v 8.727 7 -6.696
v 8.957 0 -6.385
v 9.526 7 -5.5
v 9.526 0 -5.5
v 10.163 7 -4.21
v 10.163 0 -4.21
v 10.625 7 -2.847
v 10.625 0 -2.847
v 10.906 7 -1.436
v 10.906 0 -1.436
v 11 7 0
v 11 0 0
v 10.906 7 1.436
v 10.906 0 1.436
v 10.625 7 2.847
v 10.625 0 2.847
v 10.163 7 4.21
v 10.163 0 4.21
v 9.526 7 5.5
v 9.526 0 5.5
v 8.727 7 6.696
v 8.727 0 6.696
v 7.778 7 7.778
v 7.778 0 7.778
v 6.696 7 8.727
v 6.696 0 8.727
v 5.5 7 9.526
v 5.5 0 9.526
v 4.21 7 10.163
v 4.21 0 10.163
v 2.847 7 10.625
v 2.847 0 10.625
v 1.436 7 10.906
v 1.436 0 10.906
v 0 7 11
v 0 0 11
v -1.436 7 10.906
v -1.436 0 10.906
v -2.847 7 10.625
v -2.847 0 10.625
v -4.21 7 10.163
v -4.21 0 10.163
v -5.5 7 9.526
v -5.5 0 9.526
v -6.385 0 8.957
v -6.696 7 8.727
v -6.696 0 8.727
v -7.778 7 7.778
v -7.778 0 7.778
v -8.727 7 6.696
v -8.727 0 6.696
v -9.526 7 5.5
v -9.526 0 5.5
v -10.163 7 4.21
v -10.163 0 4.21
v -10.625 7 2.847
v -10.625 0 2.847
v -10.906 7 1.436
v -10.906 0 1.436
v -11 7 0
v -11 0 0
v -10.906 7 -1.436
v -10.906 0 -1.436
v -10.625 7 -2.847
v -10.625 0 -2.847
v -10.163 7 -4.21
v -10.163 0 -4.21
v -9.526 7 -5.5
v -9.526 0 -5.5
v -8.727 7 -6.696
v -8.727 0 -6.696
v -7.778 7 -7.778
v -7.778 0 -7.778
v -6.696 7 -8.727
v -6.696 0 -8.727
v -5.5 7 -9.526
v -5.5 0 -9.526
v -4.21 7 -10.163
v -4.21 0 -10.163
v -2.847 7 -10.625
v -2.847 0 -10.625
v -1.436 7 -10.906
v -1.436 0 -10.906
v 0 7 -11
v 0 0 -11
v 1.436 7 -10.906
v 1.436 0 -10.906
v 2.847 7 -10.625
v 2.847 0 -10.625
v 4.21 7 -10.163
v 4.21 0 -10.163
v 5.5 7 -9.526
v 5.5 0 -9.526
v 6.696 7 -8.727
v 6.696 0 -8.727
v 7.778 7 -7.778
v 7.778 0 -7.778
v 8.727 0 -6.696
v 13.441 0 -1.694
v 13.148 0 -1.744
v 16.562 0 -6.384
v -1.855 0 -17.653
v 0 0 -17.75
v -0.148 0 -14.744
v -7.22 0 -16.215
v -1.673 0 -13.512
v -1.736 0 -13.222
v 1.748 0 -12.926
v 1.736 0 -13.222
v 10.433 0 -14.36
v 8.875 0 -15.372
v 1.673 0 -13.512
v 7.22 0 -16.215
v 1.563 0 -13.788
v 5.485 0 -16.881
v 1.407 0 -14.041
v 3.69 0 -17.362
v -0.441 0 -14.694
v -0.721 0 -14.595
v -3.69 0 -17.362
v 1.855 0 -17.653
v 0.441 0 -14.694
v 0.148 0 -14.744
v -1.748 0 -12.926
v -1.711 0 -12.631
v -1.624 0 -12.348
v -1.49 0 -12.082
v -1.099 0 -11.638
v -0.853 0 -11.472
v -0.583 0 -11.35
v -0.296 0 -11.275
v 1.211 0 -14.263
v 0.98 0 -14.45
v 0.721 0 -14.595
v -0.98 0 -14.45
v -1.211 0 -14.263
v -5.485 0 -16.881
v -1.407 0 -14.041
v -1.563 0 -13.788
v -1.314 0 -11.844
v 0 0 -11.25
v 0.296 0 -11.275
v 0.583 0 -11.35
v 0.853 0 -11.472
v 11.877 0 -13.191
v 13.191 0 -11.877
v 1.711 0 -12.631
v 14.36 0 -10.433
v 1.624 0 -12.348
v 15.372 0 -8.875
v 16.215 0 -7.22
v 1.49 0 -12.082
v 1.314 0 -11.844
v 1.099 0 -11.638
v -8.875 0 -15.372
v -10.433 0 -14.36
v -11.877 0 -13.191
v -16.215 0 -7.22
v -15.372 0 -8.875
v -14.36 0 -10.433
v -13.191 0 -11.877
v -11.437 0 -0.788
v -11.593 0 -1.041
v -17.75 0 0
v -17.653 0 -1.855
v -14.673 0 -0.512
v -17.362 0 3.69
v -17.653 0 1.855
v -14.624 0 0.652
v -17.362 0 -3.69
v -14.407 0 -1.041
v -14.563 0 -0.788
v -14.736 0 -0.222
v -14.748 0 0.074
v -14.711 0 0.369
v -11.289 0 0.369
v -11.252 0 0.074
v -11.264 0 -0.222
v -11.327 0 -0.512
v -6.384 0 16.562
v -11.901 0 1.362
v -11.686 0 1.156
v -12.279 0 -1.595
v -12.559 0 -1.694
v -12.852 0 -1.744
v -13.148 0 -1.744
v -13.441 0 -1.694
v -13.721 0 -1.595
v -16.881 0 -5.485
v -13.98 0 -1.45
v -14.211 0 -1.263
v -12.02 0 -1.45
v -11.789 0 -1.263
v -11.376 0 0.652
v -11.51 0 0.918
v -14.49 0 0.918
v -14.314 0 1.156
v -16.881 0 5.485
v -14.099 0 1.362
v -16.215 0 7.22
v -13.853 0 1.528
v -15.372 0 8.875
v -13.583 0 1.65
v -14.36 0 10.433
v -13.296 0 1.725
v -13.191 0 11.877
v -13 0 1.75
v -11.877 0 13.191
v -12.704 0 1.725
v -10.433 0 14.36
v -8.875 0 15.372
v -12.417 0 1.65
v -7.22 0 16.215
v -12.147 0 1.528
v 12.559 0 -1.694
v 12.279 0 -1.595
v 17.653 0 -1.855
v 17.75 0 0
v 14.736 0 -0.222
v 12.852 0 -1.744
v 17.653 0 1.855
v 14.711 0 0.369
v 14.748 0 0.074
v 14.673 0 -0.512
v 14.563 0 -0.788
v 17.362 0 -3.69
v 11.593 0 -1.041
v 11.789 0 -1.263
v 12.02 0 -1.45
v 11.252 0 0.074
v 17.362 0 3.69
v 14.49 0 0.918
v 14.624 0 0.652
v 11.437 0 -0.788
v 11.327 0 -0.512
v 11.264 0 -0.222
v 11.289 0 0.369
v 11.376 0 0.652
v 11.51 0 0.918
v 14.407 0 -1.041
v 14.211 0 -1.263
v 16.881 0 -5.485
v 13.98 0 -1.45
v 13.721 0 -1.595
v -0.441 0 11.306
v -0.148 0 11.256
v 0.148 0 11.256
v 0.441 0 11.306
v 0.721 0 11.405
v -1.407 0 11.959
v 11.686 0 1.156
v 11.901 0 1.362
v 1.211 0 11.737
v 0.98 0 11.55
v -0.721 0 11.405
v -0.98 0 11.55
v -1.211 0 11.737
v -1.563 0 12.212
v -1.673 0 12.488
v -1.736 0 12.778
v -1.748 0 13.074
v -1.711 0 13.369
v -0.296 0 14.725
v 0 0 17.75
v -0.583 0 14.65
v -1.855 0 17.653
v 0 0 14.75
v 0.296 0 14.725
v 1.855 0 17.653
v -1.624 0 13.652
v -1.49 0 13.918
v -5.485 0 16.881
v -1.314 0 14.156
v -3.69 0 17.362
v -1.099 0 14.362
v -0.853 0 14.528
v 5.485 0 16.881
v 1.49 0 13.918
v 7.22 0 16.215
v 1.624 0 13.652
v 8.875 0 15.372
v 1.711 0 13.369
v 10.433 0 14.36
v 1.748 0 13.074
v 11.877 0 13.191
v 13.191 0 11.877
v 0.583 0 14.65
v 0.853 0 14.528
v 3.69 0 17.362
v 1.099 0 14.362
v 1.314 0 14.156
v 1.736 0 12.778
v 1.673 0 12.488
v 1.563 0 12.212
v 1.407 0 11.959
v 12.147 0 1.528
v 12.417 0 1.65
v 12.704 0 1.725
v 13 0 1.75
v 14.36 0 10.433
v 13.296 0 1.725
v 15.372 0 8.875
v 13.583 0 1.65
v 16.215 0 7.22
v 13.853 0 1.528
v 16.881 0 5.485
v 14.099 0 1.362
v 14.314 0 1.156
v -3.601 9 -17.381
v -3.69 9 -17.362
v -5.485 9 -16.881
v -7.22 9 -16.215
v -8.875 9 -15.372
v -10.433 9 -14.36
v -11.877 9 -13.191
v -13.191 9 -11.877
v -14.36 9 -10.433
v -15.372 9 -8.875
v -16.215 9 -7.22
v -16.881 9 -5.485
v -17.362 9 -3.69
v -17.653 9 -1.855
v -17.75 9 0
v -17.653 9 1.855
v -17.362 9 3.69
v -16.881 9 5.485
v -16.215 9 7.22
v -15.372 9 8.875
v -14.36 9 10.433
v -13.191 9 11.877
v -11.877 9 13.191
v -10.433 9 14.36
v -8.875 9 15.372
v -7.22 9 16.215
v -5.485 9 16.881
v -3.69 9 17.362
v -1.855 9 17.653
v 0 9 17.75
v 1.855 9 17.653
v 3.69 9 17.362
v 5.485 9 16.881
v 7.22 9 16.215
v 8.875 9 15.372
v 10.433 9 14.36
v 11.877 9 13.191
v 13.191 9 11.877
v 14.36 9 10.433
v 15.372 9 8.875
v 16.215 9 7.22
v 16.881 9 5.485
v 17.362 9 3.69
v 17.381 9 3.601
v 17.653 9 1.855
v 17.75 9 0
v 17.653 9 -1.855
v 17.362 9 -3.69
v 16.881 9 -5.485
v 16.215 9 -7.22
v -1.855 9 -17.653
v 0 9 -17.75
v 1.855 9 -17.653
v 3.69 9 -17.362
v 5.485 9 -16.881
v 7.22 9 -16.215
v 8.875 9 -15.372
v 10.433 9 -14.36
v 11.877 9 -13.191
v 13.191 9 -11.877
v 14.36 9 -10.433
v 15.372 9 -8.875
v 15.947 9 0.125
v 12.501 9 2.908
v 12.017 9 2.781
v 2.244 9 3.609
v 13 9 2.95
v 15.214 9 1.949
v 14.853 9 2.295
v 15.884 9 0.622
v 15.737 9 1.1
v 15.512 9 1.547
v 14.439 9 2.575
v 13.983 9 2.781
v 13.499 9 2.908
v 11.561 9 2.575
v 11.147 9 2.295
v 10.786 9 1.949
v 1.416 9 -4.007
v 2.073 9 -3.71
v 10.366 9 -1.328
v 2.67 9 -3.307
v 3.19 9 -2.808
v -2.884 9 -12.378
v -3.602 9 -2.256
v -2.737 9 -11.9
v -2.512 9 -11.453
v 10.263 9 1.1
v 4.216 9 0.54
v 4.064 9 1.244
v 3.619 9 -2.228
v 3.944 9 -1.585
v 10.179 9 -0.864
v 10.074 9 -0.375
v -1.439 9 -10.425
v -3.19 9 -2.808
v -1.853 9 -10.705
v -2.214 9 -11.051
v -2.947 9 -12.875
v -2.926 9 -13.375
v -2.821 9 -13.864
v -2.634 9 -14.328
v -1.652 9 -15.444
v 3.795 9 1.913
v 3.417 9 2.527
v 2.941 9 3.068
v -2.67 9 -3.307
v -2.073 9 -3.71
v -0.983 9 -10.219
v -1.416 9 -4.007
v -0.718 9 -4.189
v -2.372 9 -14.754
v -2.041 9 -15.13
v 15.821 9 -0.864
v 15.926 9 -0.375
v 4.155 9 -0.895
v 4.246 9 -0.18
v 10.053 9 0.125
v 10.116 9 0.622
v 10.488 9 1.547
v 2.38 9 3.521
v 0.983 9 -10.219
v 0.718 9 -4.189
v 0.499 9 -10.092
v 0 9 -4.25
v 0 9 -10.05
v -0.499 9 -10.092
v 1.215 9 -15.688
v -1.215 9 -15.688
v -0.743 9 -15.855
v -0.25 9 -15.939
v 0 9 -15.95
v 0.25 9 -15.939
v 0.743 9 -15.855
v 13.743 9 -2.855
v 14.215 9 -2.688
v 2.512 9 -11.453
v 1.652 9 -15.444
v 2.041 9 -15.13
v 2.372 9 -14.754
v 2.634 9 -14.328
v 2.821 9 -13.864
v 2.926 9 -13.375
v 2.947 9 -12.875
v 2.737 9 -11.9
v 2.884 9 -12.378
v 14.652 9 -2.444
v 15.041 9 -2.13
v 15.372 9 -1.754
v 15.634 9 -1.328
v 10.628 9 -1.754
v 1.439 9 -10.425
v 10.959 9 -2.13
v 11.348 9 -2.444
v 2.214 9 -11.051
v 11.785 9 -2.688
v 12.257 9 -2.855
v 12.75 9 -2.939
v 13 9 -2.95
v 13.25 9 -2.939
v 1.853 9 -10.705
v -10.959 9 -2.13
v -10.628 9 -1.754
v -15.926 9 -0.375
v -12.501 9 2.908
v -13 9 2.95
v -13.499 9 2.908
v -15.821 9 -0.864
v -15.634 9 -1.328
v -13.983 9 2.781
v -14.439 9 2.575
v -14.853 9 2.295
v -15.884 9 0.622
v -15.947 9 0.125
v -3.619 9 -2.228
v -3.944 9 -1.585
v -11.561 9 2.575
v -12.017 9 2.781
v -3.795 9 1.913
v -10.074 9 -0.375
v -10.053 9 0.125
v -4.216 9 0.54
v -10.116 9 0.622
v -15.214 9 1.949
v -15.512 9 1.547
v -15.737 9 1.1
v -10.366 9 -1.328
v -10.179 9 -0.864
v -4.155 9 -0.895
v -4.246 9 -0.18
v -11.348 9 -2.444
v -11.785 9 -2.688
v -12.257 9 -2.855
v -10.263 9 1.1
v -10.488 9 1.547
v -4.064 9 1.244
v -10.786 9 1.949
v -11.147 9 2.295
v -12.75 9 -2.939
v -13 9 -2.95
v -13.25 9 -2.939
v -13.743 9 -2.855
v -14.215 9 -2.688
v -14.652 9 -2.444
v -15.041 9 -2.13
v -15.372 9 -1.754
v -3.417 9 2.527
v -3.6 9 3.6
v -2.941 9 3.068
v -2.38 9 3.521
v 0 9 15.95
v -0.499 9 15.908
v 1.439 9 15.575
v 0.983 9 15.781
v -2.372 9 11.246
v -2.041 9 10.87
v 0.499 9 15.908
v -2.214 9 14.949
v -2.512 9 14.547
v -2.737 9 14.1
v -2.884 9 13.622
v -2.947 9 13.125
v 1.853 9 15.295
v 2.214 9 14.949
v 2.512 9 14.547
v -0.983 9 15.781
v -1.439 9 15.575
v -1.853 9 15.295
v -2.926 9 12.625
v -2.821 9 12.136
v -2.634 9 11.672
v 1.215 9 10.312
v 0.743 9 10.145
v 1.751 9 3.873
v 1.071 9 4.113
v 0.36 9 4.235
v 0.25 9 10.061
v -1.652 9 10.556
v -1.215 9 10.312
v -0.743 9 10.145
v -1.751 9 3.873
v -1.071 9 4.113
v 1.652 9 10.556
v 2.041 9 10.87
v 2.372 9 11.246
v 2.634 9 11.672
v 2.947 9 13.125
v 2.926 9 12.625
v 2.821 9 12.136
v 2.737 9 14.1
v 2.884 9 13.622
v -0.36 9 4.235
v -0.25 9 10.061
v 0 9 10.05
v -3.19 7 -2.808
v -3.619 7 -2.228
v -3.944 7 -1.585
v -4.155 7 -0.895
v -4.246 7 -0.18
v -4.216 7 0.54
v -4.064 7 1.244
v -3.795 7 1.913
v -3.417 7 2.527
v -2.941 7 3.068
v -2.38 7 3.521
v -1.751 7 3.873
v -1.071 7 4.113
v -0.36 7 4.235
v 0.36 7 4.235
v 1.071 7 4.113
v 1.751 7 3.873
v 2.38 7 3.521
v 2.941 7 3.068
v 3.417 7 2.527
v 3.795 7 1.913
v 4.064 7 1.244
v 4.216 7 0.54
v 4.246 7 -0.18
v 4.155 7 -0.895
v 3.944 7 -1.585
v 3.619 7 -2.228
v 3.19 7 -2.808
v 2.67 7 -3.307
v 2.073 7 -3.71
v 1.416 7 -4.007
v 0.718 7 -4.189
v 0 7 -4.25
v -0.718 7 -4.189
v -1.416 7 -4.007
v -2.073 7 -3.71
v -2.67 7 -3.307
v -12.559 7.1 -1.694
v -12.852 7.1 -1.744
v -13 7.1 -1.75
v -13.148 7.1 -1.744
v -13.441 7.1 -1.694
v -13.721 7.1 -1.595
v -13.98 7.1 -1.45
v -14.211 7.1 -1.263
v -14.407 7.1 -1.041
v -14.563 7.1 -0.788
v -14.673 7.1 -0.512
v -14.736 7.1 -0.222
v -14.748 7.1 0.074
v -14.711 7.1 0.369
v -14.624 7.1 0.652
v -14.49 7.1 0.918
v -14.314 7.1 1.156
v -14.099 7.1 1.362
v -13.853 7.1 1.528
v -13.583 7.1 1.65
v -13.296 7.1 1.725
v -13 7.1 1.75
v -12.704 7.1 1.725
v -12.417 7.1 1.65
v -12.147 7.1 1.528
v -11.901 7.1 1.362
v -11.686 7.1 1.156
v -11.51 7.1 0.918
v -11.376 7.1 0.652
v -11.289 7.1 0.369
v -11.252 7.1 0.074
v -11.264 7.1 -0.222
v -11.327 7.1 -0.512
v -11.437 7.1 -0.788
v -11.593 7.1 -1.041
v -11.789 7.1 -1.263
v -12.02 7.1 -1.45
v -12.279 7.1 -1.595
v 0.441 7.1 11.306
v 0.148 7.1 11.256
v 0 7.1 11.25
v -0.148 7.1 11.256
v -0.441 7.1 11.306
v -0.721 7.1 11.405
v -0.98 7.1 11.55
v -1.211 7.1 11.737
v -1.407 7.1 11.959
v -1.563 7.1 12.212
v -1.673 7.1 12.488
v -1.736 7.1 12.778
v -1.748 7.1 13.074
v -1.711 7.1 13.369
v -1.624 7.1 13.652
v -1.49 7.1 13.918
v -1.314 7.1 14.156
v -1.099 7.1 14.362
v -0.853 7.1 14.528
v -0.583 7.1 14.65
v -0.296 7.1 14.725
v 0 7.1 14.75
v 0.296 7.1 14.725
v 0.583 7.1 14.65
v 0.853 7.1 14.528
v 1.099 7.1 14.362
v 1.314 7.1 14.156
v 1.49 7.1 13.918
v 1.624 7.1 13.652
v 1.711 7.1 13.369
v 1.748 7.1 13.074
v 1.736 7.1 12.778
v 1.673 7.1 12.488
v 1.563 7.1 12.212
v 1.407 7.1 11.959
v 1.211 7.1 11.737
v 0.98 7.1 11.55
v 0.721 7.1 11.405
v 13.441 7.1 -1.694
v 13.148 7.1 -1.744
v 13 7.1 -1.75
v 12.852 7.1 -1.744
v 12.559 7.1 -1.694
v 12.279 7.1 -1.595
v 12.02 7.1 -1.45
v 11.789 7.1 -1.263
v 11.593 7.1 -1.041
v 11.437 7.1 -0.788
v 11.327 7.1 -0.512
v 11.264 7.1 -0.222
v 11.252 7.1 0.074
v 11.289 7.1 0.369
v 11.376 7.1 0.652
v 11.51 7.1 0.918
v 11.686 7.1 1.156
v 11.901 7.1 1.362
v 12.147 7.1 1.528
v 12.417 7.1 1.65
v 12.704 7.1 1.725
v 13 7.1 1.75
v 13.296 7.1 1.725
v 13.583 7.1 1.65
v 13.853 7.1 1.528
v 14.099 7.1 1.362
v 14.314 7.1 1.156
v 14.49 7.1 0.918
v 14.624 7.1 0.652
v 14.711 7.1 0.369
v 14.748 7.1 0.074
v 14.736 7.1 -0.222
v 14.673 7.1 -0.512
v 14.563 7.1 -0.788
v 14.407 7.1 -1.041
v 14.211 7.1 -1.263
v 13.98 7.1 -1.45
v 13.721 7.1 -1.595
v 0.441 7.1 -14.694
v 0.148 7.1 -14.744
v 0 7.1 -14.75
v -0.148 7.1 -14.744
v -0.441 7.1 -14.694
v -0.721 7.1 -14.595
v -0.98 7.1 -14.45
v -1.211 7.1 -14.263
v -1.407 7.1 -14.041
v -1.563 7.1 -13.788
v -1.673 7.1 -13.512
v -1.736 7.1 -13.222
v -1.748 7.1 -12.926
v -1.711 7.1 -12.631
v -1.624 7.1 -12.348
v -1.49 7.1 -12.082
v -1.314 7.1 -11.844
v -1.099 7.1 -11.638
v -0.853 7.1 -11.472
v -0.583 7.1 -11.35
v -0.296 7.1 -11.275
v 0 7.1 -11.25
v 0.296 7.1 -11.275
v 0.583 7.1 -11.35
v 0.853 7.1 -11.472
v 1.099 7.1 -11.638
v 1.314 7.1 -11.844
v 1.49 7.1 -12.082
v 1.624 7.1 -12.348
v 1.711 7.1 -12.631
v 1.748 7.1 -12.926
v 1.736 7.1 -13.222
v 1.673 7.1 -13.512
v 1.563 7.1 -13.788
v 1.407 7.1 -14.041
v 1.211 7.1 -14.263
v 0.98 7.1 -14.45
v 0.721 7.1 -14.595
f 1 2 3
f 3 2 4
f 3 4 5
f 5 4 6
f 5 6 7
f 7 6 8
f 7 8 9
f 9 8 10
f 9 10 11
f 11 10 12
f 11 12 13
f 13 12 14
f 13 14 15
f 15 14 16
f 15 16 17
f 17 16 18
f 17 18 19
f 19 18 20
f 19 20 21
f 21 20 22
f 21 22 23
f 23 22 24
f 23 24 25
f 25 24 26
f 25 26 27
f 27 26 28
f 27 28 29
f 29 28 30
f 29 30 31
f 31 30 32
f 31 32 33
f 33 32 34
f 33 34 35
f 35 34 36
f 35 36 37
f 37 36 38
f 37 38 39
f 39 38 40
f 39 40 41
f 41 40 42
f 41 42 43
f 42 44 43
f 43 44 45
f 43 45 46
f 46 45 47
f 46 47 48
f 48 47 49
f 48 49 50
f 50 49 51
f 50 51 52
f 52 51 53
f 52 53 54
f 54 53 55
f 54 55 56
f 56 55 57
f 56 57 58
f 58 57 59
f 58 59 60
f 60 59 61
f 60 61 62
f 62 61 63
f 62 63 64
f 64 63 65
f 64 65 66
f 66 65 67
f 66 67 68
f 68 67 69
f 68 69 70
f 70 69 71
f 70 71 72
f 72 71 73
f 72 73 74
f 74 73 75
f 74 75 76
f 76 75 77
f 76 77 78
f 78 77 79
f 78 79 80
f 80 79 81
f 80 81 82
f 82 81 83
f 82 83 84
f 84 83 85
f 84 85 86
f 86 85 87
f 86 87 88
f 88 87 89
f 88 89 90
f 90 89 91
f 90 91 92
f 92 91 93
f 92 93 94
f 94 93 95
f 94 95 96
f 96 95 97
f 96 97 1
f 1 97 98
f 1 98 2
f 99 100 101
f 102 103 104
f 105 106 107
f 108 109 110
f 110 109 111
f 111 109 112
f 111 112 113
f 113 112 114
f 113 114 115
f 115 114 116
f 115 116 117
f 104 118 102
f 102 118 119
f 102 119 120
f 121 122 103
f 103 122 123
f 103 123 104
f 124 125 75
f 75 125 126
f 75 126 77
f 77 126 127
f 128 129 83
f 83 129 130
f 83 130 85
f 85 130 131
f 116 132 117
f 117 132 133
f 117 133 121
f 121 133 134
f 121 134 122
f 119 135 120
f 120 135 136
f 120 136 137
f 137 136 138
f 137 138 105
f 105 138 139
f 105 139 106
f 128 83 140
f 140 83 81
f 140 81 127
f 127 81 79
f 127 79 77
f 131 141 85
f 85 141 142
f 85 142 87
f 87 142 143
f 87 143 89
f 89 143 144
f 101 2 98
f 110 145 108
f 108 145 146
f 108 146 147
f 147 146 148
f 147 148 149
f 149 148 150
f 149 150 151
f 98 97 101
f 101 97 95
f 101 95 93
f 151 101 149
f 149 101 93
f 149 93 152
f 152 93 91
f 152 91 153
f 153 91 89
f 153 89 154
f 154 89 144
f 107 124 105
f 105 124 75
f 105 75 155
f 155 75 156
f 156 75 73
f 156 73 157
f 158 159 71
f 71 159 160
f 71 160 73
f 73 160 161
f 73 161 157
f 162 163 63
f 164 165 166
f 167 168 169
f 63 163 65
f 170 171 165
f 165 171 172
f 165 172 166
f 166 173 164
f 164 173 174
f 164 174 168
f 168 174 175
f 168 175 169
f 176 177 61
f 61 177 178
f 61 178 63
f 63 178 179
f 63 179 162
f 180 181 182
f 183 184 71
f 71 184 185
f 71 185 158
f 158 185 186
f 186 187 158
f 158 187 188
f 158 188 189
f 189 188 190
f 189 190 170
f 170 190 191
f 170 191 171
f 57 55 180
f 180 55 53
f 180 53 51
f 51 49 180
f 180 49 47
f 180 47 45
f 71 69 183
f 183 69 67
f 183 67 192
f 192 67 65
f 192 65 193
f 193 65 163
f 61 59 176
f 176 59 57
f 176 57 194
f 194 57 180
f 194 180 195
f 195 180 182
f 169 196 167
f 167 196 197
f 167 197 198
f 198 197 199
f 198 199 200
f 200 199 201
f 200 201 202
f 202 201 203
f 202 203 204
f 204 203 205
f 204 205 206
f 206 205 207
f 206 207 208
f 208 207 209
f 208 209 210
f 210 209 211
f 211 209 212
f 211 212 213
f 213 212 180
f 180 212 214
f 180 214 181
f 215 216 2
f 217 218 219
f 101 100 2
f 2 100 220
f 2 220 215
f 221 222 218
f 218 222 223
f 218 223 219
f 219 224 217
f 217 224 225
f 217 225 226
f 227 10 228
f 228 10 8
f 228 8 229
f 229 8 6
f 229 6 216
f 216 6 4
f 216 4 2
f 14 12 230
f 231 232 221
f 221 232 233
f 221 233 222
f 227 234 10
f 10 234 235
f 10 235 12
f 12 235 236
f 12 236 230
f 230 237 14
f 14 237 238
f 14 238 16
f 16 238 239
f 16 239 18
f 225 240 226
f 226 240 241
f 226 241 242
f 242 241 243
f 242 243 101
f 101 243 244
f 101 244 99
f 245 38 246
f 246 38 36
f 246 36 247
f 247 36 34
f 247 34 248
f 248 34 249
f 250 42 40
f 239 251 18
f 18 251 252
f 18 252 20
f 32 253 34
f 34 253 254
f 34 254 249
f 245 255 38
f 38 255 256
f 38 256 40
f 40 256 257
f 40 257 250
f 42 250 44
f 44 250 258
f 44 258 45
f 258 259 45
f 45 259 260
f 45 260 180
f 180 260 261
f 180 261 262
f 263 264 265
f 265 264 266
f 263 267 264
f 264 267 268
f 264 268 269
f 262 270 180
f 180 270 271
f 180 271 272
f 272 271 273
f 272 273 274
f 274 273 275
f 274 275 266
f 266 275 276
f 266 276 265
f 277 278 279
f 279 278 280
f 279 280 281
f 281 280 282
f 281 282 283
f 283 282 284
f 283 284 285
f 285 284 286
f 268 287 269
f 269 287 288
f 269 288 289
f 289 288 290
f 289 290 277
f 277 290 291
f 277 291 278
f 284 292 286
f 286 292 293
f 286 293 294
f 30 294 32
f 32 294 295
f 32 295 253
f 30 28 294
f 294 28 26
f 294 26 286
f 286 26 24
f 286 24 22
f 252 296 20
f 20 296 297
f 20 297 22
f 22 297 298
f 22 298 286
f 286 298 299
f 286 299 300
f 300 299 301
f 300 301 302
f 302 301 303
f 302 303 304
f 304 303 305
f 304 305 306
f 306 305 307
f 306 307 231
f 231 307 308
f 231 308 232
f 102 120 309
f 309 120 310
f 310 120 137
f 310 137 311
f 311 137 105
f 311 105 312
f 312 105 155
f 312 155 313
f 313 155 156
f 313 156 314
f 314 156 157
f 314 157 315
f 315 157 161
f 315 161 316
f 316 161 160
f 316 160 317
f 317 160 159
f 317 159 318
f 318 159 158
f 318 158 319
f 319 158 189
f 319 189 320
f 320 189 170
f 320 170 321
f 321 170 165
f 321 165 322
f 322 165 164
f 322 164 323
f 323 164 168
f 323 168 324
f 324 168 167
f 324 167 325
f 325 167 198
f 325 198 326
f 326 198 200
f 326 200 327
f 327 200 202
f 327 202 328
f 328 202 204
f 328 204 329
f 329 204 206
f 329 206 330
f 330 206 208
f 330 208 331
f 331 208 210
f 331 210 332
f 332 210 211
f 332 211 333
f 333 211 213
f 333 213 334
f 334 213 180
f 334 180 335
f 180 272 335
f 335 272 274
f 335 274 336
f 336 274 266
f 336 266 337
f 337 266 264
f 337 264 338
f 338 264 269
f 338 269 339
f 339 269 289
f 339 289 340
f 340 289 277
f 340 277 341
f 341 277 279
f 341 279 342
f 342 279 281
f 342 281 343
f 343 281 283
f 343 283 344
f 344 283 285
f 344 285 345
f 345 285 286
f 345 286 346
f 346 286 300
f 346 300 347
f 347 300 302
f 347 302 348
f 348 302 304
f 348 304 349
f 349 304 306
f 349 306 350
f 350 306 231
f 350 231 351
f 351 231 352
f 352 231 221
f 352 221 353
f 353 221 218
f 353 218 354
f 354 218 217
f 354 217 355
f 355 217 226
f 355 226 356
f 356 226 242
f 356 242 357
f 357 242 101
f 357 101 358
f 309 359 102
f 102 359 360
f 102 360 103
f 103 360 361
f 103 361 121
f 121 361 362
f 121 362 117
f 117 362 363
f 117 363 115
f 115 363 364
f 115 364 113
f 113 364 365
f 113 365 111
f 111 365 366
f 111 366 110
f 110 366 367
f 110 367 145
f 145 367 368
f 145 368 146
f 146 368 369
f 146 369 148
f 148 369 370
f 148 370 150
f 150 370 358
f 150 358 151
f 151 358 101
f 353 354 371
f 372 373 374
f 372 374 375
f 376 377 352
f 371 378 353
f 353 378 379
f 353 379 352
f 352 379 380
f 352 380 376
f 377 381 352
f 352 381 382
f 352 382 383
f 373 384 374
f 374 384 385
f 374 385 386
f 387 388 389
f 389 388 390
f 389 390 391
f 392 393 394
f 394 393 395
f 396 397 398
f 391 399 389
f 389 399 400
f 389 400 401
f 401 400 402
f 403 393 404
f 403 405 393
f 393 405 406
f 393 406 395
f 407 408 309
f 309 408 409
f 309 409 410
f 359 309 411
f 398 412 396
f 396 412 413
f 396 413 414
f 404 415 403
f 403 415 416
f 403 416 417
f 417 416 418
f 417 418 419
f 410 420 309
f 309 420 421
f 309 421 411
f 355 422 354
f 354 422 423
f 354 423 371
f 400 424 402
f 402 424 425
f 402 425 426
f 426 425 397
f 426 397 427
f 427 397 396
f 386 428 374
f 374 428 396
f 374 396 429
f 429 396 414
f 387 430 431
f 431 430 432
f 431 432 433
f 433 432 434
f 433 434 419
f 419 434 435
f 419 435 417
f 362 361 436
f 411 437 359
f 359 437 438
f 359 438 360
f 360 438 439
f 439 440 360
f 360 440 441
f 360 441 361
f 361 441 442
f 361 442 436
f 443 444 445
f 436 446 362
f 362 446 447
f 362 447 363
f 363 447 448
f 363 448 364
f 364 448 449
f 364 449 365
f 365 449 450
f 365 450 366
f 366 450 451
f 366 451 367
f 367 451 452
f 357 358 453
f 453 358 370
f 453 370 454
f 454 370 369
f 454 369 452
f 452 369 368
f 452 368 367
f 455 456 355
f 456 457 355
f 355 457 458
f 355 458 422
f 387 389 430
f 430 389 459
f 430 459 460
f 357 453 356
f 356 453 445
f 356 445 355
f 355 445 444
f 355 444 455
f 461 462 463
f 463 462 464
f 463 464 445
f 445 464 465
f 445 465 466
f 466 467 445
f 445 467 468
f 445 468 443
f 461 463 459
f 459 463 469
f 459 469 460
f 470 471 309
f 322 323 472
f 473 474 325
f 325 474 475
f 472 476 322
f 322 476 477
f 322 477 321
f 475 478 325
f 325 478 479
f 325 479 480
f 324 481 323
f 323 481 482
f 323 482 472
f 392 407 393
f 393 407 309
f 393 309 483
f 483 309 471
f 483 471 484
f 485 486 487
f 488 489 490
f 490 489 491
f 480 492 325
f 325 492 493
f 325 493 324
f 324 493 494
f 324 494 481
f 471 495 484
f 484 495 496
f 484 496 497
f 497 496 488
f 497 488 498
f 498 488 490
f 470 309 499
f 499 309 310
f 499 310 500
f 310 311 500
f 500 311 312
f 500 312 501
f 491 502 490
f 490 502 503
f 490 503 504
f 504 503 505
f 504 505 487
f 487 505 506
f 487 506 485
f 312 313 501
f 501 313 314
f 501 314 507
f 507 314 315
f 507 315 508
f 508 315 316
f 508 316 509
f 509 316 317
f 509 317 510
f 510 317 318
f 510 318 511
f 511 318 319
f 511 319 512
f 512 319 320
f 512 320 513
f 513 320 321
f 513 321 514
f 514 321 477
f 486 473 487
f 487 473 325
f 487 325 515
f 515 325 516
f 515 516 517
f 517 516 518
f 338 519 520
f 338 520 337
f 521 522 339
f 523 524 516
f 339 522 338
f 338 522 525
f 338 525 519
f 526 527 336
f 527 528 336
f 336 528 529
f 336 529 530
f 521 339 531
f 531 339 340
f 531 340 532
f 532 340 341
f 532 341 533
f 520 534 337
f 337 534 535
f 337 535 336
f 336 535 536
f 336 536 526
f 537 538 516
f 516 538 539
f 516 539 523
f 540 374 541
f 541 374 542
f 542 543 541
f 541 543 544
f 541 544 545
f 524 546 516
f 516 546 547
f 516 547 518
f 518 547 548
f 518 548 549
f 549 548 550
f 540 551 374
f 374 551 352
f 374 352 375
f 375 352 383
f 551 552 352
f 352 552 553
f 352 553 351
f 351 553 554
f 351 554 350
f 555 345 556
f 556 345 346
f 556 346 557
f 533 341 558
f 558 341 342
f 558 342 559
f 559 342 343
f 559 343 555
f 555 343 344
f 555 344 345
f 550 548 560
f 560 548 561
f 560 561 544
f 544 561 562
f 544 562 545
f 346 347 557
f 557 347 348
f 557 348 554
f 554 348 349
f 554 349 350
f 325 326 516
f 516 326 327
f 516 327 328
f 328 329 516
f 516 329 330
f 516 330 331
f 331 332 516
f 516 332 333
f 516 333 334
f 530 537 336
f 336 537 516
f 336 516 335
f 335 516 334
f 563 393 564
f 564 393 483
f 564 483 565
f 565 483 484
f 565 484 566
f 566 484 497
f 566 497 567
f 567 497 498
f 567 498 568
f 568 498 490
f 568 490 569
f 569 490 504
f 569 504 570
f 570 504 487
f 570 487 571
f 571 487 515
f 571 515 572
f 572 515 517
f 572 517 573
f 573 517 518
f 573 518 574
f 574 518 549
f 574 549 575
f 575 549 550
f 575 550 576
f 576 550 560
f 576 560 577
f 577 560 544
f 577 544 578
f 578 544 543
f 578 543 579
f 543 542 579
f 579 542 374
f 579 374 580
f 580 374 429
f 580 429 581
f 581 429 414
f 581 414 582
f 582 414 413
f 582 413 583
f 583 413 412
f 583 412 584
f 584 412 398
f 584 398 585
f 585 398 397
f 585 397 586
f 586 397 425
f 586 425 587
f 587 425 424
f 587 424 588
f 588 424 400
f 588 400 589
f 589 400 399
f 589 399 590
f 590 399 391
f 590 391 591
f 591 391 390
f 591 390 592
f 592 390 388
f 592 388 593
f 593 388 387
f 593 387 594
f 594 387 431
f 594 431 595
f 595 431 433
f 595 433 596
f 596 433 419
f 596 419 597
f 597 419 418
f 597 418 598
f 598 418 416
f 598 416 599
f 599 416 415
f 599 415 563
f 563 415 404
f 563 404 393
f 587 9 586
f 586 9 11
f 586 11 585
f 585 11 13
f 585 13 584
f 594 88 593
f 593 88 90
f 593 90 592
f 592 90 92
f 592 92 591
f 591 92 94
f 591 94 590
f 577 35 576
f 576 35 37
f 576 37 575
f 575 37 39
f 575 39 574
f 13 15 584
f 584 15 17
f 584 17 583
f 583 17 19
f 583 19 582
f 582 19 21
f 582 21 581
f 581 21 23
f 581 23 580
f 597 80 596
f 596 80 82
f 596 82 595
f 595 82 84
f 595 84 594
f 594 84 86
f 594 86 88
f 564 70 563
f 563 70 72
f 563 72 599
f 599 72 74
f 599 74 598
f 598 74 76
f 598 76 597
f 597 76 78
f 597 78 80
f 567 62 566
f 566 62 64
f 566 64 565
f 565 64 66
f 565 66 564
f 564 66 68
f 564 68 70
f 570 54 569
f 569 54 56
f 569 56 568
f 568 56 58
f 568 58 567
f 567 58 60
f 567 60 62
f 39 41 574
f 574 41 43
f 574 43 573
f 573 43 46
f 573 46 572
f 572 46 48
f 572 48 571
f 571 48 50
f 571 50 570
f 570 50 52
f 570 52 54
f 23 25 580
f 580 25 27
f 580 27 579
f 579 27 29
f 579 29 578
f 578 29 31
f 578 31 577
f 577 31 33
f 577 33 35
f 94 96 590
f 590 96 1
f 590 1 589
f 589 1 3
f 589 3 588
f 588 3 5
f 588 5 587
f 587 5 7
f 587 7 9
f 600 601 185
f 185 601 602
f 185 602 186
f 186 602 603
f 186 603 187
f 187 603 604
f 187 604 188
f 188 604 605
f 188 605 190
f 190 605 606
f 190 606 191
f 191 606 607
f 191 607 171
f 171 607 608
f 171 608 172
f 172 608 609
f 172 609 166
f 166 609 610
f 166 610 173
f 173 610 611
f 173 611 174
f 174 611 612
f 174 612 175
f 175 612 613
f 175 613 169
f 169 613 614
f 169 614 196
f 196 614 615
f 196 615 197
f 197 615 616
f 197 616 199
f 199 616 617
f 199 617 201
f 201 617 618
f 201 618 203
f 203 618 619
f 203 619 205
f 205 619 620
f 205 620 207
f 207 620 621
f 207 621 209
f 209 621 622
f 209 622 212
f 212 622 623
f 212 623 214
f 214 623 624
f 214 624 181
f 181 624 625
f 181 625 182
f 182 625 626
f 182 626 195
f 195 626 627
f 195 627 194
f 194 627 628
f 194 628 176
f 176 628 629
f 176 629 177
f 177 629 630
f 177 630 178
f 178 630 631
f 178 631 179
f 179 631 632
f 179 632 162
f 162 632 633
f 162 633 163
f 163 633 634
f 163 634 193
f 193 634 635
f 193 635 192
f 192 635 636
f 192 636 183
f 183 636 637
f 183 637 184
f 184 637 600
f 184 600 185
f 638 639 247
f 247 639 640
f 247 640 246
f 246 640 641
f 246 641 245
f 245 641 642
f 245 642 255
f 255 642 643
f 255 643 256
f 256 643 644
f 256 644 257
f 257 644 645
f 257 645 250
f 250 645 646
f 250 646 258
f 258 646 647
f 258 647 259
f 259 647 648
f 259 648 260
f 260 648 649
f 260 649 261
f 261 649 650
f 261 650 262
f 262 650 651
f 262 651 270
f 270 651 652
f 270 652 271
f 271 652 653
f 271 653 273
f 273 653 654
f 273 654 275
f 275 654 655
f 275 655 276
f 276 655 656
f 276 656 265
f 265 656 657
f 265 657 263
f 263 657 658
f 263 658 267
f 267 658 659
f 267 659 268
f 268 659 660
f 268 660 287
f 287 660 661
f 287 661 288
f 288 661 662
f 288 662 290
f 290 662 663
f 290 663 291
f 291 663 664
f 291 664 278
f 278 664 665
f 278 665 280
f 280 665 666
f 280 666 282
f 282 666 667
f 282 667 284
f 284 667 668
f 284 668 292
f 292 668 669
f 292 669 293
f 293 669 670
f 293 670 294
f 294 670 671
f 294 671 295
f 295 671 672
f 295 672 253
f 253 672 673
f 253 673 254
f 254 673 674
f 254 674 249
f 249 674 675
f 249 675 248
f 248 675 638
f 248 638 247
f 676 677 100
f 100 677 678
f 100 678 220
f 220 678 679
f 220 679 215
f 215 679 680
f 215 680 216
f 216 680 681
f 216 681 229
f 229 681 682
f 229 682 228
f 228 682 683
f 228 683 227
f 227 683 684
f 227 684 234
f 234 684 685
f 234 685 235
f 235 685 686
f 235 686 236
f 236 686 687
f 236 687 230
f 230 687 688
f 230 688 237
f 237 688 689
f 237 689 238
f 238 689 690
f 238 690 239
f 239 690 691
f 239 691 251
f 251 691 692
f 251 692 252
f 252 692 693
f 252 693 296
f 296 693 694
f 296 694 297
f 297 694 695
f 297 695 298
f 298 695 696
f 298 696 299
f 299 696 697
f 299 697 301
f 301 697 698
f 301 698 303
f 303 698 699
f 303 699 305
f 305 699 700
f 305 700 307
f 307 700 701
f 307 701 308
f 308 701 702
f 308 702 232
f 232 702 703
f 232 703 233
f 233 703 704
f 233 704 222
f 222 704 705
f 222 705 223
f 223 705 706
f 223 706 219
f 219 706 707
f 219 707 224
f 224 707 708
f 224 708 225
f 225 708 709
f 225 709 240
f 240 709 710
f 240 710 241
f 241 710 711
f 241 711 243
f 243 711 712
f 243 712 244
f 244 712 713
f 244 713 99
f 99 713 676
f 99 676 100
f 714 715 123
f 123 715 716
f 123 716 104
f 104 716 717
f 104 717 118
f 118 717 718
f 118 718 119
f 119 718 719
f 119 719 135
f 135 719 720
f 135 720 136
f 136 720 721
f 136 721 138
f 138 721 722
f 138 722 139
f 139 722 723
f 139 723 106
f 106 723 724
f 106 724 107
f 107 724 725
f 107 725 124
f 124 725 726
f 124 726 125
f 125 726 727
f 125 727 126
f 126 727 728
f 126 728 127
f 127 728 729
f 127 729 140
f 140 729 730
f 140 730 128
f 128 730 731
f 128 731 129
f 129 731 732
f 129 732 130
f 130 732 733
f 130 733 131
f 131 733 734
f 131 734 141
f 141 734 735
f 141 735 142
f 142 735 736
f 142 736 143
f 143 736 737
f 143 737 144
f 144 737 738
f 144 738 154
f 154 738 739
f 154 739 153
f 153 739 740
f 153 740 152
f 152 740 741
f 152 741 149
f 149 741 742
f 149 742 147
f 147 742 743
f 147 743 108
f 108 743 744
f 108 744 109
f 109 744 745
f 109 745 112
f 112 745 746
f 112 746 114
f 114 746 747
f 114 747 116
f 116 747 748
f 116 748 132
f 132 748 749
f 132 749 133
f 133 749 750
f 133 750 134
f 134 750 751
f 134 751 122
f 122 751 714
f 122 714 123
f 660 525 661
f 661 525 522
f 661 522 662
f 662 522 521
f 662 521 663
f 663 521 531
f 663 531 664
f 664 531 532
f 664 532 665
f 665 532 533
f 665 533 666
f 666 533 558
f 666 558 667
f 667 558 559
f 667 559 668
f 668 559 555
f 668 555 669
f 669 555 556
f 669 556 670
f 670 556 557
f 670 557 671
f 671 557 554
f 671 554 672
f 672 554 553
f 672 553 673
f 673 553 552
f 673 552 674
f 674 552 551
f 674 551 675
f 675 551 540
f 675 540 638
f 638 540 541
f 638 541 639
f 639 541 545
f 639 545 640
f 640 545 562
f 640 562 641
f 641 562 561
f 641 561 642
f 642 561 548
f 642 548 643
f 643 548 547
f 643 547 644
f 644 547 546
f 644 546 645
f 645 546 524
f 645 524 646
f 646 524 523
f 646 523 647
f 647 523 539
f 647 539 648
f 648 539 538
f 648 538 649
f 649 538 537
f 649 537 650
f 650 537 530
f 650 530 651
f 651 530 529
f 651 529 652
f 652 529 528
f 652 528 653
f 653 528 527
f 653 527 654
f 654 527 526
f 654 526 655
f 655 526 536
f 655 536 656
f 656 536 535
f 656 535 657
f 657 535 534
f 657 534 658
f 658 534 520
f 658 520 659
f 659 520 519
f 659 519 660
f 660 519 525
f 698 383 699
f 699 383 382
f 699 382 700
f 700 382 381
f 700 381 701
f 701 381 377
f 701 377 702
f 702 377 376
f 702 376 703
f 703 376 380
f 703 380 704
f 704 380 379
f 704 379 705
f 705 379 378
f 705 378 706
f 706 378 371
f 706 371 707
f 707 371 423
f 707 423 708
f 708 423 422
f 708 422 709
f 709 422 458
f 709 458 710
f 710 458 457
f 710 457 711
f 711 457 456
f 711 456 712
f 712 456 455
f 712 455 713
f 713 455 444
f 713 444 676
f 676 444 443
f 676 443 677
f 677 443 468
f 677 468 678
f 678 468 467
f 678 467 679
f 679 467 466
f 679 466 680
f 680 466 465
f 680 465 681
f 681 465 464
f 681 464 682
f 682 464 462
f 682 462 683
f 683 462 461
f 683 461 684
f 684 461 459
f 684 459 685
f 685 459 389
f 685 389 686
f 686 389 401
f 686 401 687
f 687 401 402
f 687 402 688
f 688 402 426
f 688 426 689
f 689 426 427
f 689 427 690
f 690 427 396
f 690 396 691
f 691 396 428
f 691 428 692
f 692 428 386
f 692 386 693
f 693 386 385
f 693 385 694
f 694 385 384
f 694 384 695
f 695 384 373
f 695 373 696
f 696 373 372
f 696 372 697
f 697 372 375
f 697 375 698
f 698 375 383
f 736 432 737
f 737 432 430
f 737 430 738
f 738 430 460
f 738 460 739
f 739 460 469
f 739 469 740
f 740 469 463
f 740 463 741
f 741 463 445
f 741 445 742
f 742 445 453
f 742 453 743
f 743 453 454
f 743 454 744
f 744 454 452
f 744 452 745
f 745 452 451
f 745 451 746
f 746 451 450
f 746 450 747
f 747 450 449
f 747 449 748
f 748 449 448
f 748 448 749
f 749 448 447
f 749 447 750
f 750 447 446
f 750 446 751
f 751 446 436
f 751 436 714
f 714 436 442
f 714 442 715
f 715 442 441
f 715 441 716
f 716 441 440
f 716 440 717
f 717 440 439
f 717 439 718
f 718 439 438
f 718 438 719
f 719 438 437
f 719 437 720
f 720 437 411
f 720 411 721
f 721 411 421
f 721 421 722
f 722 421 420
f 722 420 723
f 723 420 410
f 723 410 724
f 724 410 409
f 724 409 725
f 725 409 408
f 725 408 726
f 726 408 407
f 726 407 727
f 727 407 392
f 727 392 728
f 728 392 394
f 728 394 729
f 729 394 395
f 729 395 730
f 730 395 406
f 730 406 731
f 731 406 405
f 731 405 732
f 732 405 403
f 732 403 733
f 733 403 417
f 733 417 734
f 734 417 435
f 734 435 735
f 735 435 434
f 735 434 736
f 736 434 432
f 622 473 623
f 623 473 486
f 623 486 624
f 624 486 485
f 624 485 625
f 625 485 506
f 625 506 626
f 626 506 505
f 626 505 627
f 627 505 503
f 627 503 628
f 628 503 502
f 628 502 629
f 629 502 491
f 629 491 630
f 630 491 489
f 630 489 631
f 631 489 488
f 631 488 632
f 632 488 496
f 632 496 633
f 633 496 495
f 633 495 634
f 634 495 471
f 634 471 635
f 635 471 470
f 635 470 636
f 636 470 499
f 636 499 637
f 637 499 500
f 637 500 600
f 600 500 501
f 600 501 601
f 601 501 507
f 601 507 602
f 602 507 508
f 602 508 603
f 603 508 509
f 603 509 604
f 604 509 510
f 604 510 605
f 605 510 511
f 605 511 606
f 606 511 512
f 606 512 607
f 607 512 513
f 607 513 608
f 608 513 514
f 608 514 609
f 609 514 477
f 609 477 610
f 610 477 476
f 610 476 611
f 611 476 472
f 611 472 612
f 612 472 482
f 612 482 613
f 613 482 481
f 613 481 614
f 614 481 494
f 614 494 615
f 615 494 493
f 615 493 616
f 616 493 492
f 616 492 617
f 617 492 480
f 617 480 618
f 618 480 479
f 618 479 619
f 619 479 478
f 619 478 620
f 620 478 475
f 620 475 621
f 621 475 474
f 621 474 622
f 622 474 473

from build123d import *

# Parameters (mm, degrees)
SKETCH4_R          = 1.75
CUT_EXTRUDE1_DEPTH = 9
CHAMFER1_SIZE      = 1.2
CHAMFER1_SIZE2     = 1.9


with BuildPart() as part:
    # Sketch3 → Revolve1 (revolve)
    with BuildSketch(Plane.XY, mode=Mode.PRIVATE) as revolve1_sk:
        Polygon((-11, 0), (-17.75, 0), (-17.75, 9), (-4.25, 9), (-4.25, 7), (-11, 7), align=None)
    revolve(revolve1_sk.sketch.rotate(Axis((0, 0, 0), (0, 1, 0)), 270), axis=Axis((0, 0, 0), (0, 1, 0)))

    # Sketch4 → Cut-Extrude1 (cut)
    with BuildSketch(Plane(origin=(0, 9, 0), x_dir=(1, 0, 0), z_dir=(0, 1, 0))):
        with Locations(Location((0, 13, 0), (0, 0, 270))):
            Circle(SKETCH4_R)
        with Locations(Location((13, 0, 0), (0, 0, 270))):
            Circle(SKETCH4_R)
        with Locations(Location((0, -13, 0), (0, 0, 270))):
            Circle(SKETCH4_R)
        with Locations(Location((-13, 0, 0), (0, 0, 270))):
            Circle(SKETCH4_R)
    extrude(amount=-CUT_EXTRUDE1_DEPTH, mode=Mode.SUBTRACT)

    # Chamfer1
    chamfer1_edges = [part.edges().sort_by_distance(p)[0] for p in [
        (0, 9, -14.75),
        (13, 9, -1.75),
        (0, 9, 11.25),
        (-13, 9, -1.75),
    ]]
    chamfer1_side = [part.faces().sort_by_distance(p)[0] for p in [
        (0, 9, 17.247954185),
    ]]
    chamfer(chamfer1_edges, length=CHAMFER1_SIZE, length2=CHAMFER1_SIZE2, reference=chamfer1_side[0])


solid = part.part
